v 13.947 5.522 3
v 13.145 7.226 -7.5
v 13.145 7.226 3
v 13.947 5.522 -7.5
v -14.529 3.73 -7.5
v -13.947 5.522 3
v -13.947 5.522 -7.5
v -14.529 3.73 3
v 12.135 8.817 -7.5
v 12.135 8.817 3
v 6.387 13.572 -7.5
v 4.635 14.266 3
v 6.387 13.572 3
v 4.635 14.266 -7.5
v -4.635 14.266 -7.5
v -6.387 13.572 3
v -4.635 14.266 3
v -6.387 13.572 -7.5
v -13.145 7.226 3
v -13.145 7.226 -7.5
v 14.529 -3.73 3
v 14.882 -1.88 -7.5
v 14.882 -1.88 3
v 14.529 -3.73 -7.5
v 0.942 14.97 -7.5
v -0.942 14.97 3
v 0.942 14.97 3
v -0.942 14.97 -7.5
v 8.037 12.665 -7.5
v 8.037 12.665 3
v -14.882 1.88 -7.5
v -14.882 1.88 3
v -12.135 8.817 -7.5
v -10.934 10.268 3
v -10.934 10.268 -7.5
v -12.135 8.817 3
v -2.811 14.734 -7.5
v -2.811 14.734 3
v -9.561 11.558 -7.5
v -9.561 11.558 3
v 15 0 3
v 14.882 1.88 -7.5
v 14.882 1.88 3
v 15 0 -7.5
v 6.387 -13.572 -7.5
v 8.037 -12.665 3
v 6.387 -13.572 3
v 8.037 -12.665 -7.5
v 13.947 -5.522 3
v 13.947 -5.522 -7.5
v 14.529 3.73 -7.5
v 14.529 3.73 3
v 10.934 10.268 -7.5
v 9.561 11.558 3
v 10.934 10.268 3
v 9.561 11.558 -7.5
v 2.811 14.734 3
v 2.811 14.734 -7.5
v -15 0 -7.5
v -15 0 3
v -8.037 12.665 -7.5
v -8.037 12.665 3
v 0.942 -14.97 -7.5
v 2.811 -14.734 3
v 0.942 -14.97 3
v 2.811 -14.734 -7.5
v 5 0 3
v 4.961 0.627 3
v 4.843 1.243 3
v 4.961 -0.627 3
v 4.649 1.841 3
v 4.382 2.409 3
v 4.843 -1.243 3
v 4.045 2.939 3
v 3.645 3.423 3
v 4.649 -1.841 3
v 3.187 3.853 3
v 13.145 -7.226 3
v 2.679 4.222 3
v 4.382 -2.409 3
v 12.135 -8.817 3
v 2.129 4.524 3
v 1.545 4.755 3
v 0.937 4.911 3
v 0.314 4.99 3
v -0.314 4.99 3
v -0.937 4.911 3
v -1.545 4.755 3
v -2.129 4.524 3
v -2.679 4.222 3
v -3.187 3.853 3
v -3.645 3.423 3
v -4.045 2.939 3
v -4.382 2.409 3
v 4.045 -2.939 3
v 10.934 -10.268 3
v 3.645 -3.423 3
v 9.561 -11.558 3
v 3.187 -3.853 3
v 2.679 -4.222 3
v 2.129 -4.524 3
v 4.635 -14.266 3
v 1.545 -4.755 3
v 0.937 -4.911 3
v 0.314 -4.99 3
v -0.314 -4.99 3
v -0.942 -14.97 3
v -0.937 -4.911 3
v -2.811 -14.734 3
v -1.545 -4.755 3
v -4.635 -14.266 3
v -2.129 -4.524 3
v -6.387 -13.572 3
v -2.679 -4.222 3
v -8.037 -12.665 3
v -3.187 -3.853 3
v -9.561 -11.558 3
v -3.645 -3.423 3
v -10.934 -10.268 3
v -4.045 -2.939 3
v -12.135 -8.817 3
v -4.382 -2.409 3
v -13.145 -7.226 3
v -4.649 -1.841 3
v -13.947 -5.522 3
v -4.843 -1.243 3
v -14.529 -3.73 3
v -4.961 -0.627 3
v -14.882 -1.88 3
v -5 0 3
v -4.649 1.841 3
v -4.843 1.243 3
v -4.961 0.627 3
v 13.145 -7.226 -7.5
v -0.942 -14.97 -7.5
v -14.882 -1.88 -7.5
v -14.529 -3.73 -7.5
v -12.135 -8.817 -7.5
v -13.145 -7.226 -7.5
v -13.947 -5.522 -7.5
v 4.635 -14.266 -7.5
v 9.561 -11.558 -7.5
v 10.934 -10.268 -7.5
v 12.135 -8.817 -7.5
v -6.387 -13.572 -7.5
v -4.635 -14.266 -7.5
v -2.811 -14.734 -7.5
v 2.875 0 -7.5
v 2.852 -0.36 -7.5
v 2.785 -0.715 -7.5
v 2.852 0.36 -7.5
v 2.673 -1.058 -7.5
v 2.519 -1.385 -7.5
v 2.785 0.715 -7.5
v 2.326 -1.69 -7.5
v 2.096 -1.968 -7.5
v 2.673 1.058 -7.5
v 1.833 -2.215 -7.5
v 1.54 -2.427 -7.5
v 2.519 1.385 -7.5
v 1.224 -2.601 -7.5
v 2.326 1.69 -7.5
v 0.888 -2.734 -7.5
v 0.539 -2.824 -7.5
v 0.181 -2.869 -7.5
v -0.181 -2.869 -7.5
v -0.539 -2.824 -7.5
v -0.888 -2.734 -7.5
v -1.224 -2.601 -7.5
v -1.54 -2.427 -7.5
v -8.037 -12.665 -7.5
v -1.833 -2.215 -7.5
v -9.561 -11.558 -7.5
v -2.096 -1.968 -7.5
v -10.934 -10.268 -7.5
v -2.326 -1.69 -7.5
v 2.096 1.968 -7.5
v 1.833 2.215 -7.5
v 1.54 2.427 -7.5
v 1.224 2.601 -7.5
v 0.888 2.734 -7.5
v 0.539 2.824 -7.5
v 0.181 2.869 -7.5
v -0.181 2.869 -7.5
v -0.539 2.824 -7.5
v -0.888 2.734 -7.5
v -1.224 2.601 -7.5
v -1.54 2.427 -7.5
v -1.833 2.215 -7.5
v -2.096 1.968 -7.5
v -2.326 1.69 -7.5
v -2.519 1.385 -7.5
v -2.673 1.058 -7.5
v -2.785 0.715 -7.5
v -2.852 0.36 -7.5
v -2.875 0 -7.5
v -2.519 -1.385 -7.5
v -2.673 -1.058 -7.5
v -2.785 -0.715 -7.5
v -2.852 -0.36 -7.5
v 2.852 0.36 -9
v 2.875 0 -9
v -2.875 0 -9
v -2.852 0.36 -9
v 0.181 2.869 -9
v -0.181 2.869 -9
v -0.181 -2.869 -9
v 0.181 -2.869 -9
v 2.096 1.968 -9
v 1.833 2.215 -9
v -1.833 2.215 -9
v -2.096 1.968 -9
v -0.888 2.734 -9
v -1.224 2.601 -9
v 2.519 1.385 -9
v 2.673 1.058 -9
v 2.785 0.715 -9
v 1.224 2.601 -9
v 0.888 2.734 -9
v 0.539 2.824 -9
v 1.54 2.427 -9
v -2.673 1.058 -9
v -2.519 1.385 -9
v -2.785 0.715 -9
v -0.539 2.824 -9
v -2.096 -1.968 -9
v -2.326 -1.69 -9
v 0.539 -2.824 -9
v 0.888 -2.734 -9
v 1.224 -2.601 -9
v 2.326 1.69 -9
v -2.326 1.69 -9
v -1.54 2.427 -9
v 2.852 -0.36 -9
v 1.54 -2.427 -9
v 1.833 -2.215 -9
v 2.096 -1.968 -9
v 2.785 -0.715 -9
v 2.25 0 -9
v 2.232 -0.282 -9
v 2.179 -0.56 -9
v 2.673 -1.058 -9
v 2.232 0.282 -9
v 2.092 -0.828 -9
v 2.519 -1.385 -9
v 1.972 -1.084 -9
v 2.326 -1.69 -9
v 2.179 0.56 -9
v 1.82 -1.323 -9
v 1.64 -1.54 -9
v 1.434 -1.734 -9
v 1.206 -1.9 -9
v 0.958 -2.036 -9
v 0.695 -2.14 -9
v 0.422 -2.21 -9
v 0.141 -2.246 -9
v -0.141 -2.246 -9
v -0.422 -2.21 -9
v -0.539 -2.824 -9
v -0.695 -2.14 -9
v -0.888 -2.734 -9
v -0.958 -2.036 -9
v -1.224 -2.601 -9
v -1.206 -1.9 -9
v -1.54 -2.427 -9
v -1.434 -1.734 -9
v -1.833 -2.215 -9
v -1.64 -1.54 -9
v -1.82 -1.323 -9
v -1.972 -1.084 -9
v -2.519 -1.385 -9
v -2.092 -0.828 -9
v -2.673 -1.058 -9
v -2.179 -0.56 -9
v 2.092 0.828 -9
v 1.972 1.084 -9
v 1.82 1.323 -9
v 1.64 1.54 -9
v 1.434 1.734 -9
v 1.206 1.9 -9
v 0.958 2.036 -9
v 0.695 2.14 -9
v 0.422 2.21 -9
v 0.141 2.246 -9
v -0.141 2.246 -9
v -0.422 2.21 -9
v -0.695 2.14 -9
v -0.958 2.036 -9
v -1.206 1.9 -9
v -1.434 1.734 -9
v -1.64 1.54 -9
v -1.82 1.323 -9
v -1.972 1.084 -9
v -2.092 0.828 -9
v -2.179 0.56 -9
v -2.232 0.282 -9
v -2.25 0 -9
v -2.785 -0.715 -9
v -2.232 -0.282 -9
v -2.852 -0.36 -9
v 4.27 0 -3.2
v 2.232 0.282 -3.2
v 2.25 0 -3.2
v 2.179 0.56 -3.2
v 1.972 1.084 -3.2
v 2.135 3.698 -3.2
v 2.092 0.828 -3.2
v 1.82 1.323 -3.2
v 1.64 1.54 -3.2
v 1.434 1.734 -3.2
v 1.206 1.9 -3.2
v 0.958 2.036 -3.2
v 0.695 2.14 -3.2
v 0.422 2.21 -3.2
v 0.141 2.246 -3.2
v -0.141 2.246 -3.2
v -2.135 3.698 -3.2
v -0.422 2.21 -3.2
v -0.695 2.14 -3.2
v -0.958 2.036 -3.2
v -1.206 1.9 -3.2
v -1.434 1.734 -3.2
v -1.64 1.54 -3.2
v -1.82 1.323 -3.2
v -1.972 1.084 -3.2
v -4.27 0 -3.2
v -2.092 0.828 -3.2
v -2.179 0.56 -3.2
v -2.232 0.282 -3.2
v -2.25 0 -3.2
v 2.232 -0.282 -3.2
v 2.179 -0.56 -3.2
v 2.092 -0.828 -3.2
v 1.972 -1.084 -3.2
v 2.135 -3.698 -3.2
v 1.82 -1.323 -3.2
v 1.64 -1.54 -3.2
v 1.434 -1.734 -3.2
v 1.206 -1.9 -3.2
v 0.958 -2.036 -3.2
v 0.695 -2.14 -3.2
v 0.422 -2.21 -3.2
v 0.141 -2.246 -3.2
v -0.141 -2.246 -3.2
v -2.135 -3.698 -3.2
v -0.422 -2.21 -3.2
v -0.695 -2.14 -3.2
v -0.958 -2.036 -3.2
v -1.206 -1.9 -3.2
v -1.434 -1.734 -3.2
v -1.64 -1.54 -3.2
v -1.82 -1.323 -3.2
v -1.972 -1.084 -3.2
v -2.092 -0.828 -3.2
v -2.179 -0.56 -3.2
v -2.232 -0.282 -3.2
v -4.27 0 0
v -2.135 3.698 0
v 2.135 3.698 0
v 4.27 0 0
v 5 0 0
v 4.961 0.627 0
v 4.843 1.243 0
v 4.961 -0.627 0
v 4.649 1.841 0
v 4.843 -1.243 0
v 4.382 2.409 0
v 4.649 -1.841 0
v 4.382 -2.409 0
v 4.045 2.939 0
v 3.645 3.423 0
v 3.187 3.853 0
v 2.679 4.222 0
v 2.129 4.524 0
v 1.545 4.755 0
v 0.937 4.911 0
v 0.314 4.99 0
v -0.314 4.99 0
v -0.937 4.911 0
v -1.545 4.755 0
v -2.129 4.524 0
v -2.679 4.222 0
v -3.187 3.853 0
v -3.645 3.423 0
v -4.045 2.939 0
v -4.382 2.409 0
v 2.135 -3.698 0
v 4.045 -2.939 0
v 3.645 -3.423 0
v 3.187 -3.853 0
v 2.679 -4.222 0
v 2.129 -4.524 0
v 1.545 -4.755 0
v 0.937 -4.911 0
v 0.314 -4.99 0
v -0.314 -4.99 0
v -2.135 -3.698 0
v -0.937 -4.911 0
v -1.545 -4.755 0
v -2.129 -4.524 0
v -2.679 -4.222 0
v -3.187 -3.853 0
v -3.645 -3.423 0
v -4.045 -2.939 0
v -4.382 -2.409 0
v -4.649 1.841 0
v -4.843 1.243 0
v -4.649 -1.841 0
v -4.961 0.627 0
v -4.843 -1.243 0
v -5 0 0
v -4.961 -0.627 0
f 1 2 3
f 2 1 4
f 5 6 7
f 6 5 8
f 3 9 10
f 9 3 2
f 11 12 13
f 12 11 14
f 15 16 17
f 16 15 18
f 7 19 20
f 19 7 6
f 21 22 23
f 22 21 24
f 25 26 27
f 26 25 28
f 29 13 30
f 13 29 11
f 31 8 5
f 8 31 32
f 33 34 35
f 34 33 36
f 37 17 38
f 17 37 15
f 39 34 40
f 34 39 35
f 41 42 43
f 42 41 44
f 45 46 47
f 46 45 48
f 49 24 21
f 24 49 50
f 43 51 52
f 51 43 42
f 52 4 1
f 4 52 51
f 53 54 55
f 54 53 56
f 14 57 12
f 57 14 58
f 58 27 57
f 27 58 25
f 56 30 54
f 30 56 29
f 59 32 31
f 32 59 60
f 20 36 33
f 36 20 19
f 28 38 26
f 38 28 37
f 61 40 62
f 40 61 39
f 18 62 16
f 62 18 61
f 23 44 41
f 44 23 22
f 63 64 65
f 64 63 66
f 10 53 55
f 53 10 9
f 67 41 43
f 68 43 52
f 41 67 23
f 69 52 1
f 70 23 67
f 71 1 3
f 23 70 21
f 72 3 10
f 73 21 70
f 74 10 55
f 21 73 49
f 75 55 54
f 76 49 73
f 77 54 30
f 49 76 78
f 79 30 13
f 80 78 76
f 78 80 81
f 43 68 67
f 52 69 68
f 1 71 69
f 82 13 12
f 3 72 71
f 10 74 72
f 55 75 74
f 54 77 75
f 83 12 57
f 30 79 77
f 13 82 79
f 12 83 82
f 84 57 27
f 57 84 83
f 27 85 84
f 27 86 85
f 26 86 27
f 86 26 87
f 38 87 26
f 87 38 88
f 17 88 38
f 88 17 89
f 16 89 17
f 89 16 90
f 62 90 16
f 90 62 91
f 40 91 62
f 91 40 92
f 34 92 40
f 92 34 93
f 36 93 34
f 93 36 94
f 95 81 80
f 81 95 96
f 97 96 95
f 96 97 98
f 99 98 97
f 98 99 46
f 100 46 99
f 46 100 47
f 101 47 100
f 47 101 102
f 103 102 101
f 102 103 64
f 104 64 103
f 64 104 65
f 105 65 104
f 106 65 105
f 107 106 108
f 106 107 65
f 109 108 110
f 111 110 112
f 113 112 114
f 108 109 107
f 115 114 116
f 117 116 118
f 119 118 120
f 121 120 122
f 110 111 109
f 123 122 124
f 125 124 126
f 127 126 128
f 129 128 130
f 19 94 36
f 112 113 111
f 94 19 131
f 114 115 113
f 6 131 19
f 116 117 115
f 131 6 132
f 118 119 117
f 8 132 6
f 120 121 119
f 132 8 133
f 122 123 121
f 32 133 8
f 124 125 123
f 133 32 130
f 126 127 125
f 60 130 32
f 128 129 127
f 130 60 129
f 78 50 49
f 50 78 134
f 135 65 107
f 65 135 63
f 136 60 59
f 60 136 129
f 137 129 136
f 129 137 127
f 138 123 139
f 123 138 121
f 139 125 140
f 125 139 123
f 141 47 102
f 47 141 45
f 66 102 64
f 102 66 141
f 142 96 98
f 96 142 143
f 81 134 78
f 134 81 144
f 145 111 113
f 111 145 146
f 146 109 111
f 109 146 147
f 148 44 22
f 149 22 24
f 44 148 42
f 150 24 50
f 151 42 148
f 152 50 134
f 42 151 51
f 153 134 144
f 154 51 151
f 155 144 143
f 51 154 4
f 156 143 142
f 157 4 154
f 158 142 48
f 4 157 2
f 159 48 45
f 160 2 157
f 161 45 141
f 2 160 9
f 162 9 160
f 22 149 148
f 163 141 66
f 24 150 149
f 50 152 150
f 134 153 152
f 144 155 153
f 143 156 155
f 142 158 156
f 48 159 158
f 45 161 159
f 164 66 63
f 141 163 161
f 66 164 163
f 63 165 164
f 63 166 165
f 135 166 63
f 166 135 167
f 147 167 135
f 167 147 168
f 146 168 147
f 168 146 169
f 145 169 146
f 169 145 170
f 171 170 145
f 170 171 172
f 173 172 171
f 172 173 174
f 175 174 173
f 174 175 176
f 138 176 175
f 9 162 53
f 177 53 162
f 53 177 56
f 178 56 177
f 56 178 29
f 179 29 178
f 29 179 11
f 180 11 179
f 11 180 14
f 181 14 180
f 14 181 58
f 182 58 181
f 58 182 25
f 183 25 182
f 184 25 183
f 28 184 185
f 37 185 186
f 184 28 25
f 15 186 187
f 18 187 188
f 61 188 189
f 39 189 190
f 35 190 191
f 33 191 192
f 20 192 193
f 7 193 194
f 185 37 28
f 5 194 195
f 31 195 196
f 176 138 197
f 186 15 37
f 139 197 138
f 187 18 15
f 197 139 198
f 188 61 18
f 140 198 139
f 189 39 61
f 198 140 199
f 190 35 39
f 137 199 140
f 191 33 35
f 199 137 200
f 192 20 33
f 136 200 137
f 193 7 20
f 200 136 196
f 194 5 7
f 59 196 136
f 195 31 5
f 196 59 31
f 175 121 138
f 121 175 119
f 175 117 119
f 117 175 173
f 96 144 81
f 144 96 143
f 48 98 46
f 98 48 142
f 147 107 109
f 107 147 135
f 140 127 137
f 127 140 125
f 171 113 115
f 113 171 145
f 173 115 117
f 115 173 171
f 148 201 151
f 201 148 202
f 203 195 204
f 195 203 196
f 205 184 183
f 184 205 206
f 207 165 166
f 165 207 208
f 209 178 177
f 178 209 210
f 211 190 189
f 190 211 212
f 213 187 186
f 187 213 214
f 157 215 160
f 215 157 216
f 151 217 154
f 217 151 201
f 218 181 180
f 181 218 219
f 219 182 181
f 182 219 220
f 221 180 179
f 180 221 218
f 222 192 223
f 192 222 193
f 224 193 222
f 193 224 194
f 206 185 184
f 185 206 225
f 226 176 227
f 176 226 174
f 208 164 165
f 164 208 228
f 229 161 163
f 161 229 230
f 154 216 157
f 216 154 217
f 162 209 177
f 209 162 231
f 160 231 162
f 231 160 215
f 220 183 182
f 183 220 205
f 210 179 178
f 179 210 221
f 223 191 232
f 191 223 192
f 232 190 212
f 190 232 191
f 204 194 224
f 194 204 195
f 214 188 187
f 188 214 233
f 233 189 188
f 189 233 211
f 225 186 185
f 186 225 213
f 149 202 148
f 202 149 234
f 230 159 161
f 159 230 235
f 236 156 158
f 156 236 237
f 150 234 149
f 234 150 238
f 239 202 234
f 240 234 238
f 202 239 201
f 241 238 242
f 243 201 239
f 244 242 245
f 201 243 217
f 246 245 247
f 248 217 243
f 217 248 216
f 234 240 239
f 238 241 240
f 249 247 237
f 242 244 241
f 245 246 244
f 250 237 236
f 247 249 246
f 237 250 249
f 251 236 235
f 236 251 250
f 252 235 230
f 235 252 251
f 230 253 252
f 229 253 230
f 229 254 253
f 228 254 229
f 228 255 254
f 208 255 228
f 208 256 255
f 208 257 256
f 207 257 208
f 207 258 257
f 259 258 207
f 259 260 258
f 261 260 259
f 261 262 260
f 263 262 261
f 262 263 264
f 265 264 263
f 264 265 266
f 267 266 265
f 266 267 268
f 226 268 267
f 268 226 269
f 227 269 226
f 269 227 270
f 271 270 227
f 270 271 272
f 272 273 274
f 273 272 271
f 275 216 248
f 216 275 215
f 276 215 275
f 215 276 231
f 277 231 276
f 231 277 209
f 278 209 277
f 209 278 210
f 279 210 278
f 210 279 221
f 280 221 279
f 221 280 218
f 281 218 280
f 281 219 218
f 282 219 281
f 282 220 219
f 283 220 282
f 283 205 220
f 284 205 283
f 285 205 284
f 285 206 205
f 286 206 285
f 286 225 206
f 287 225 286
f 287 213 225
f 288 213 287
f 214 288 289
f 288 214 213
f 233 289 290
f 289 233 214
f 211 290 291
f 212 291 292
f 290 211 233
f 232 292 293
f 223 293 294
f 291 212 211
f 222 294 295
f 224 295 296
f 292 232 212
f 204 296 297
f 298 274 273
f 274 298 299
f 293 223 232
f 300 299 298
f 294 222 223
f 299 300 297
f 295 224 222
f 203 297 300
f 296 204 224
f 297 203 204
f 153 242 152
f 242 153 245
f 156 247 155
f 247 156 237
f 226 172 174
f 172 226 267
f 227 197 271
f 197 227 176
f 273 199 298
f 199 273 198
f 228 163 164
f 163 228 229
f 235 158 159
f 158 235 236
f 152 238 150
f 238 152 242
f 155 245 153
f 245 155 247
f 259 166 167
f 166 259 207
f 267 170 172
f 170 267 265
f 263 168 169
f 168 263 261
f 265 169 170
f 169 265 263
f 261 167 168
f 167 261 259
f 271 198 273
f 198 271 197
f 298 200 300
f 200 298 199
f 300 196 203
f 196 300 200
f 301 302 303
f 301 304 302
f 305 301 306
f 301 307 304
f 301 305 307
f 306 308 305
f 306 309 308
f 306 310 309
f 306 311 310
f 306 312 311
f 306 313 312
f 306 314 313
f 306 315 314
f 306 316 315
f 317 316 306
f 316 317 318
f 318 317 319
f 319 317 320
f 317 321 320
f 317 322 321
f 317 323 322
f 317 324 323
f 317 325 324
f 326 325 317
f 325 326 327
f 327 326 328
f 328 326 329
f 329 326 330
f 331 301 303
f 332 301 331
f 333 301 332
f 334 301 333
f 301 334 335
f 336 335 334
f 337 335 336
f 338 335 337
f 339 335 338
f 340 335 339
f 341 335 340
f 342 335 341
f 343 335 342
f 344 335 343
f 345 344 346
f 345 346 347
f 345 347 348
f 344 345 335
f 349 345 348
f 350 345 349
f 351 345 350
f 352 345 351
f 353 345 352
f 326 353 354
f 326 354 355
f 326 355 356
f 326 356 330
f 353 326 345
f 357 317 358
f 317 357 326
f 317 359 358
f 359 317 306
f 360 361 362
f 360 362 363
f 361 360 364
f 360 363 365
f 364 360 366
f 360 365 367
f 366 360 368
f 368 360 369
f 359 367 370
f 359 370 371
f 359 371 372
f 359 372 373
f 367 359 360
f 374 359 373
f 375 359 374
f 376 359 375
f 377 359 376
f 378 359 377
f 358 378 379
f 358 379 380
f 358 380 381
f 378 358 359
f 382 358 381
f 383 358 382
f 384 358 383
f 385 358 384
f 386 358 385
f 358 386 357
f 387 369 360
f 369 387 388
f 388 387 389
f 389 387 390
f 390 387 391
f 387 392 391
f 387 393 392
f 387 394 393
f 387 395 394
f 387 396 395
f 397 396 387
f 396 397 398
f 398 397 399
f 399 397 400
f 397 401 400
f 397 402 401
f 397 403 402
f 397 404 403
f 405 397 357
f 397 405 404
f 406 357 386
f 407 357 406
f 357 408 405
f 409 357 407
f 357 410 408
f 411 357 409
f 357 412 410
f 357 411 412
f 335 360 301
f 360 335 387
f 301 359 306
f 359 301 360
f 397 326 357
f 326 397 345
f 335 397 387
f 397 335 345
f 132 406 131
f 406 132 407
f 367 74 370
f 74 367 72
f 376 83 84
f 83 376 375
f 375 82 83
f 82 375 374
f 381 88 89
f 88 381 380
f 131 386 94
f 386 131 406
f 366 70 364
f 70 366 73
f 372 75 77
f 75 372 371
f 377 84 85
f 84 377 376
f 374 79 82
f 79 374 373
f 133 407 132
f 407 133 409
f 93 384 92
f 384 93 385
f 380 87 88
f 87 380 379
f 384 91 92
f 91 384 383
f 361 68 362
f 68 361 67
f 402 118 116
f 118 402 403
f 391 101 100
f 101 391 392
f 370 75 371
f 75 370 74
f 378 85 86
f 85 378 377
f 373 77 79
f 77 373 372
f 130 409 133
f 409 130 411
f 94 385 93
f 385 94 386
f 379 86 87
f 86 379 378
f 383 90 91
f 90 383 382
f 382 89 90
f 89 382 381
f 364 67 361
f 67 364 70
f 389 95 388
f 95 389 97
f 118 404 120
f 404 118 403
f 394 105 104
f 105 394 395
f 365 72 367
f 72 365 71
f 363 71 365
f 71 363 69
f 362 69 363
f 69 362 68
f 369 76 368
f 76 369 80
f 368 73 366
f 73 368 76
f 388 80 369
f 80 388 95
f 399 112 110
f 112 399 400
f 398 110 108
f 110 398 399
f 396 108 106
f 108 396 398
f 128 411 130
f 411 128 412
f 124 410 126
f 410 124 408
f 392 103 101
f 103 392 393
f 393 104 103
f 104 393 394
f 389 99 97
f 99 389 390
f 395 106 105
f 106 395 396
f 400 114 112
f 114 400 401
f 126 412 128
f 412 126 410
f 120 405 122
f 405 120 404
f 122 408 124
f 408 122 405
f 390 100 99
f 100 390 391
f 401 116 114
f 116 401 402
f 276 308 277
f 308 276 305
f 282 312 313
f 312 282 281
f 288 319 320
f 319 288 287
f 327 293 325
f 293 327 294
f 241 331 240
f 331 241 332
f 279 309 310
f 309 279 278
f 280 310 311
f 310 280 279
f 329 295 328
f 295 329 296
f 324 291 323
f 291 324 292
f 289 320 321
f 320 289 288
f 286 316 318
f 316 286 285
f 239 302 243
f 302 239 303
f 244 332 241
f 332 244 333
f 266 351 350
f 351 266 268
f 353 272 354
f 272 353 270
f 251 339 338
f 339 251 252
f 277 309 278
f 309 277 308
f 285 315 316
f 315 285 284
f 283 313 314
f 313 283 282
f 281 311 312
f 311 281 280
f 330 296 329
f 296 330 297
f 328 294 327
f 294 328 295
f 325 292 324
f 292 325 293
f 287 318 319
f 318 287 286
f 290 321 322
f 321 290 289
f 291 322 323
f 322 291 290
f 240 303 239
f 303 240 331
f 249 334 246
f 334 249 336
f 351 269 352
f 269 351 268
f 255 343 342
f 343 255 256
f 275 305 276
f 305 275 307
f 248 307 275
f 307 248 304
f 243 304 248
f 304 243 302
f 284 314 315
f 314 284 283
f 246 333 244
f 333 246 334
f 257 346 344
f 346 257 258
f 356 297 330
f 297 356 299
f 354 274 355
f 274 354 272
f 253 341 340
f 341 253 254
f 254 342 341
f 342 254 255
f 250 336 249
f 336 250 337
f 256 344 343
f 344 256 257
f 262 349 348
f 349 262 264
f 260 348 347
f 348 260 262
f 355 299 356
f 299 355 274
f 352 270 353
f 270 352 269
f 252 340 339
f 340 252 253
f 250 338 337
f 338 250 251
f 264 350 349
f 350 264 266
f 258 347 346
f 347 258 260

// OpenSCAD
$fn = 50;

difference() {
	union() {
		translate(v = [0, 0, -7.5]) {
			cylinder(h = 10.5, r = 15.0);
		}
		#translate(v = [0, 0, -9.0]) {
			cylinder(h = 9, r = 2.875);
		}
	}
	union() {
		translate(v = [0, 0, 0]) {
			rotate(a = [0, 0, 0]) {
				difference() {
					union() {
						translate(v = [0, 0, -3.2]) {
							linear_extrude(height = 3.2) {
								polygon(points = [[4.2698, 0.0], [2.1349000000000005, 3.697755269078796], [-2.134899999999999, 3.6977552690787965], [-4.2698, 5.228996902999369e-16], [-2.134900000000002, -3.6977552690787956], [2.1348999999999974, -3.697755269078798]]);
							}
						}
					}
					union();
				}
			}
		}
		#cylinder(h = 3, r = 5.0);
		#translate(v = [0, 0, -100.0]) {
			cylinder(h = 200, r = 2.25);
		}
	}
}
